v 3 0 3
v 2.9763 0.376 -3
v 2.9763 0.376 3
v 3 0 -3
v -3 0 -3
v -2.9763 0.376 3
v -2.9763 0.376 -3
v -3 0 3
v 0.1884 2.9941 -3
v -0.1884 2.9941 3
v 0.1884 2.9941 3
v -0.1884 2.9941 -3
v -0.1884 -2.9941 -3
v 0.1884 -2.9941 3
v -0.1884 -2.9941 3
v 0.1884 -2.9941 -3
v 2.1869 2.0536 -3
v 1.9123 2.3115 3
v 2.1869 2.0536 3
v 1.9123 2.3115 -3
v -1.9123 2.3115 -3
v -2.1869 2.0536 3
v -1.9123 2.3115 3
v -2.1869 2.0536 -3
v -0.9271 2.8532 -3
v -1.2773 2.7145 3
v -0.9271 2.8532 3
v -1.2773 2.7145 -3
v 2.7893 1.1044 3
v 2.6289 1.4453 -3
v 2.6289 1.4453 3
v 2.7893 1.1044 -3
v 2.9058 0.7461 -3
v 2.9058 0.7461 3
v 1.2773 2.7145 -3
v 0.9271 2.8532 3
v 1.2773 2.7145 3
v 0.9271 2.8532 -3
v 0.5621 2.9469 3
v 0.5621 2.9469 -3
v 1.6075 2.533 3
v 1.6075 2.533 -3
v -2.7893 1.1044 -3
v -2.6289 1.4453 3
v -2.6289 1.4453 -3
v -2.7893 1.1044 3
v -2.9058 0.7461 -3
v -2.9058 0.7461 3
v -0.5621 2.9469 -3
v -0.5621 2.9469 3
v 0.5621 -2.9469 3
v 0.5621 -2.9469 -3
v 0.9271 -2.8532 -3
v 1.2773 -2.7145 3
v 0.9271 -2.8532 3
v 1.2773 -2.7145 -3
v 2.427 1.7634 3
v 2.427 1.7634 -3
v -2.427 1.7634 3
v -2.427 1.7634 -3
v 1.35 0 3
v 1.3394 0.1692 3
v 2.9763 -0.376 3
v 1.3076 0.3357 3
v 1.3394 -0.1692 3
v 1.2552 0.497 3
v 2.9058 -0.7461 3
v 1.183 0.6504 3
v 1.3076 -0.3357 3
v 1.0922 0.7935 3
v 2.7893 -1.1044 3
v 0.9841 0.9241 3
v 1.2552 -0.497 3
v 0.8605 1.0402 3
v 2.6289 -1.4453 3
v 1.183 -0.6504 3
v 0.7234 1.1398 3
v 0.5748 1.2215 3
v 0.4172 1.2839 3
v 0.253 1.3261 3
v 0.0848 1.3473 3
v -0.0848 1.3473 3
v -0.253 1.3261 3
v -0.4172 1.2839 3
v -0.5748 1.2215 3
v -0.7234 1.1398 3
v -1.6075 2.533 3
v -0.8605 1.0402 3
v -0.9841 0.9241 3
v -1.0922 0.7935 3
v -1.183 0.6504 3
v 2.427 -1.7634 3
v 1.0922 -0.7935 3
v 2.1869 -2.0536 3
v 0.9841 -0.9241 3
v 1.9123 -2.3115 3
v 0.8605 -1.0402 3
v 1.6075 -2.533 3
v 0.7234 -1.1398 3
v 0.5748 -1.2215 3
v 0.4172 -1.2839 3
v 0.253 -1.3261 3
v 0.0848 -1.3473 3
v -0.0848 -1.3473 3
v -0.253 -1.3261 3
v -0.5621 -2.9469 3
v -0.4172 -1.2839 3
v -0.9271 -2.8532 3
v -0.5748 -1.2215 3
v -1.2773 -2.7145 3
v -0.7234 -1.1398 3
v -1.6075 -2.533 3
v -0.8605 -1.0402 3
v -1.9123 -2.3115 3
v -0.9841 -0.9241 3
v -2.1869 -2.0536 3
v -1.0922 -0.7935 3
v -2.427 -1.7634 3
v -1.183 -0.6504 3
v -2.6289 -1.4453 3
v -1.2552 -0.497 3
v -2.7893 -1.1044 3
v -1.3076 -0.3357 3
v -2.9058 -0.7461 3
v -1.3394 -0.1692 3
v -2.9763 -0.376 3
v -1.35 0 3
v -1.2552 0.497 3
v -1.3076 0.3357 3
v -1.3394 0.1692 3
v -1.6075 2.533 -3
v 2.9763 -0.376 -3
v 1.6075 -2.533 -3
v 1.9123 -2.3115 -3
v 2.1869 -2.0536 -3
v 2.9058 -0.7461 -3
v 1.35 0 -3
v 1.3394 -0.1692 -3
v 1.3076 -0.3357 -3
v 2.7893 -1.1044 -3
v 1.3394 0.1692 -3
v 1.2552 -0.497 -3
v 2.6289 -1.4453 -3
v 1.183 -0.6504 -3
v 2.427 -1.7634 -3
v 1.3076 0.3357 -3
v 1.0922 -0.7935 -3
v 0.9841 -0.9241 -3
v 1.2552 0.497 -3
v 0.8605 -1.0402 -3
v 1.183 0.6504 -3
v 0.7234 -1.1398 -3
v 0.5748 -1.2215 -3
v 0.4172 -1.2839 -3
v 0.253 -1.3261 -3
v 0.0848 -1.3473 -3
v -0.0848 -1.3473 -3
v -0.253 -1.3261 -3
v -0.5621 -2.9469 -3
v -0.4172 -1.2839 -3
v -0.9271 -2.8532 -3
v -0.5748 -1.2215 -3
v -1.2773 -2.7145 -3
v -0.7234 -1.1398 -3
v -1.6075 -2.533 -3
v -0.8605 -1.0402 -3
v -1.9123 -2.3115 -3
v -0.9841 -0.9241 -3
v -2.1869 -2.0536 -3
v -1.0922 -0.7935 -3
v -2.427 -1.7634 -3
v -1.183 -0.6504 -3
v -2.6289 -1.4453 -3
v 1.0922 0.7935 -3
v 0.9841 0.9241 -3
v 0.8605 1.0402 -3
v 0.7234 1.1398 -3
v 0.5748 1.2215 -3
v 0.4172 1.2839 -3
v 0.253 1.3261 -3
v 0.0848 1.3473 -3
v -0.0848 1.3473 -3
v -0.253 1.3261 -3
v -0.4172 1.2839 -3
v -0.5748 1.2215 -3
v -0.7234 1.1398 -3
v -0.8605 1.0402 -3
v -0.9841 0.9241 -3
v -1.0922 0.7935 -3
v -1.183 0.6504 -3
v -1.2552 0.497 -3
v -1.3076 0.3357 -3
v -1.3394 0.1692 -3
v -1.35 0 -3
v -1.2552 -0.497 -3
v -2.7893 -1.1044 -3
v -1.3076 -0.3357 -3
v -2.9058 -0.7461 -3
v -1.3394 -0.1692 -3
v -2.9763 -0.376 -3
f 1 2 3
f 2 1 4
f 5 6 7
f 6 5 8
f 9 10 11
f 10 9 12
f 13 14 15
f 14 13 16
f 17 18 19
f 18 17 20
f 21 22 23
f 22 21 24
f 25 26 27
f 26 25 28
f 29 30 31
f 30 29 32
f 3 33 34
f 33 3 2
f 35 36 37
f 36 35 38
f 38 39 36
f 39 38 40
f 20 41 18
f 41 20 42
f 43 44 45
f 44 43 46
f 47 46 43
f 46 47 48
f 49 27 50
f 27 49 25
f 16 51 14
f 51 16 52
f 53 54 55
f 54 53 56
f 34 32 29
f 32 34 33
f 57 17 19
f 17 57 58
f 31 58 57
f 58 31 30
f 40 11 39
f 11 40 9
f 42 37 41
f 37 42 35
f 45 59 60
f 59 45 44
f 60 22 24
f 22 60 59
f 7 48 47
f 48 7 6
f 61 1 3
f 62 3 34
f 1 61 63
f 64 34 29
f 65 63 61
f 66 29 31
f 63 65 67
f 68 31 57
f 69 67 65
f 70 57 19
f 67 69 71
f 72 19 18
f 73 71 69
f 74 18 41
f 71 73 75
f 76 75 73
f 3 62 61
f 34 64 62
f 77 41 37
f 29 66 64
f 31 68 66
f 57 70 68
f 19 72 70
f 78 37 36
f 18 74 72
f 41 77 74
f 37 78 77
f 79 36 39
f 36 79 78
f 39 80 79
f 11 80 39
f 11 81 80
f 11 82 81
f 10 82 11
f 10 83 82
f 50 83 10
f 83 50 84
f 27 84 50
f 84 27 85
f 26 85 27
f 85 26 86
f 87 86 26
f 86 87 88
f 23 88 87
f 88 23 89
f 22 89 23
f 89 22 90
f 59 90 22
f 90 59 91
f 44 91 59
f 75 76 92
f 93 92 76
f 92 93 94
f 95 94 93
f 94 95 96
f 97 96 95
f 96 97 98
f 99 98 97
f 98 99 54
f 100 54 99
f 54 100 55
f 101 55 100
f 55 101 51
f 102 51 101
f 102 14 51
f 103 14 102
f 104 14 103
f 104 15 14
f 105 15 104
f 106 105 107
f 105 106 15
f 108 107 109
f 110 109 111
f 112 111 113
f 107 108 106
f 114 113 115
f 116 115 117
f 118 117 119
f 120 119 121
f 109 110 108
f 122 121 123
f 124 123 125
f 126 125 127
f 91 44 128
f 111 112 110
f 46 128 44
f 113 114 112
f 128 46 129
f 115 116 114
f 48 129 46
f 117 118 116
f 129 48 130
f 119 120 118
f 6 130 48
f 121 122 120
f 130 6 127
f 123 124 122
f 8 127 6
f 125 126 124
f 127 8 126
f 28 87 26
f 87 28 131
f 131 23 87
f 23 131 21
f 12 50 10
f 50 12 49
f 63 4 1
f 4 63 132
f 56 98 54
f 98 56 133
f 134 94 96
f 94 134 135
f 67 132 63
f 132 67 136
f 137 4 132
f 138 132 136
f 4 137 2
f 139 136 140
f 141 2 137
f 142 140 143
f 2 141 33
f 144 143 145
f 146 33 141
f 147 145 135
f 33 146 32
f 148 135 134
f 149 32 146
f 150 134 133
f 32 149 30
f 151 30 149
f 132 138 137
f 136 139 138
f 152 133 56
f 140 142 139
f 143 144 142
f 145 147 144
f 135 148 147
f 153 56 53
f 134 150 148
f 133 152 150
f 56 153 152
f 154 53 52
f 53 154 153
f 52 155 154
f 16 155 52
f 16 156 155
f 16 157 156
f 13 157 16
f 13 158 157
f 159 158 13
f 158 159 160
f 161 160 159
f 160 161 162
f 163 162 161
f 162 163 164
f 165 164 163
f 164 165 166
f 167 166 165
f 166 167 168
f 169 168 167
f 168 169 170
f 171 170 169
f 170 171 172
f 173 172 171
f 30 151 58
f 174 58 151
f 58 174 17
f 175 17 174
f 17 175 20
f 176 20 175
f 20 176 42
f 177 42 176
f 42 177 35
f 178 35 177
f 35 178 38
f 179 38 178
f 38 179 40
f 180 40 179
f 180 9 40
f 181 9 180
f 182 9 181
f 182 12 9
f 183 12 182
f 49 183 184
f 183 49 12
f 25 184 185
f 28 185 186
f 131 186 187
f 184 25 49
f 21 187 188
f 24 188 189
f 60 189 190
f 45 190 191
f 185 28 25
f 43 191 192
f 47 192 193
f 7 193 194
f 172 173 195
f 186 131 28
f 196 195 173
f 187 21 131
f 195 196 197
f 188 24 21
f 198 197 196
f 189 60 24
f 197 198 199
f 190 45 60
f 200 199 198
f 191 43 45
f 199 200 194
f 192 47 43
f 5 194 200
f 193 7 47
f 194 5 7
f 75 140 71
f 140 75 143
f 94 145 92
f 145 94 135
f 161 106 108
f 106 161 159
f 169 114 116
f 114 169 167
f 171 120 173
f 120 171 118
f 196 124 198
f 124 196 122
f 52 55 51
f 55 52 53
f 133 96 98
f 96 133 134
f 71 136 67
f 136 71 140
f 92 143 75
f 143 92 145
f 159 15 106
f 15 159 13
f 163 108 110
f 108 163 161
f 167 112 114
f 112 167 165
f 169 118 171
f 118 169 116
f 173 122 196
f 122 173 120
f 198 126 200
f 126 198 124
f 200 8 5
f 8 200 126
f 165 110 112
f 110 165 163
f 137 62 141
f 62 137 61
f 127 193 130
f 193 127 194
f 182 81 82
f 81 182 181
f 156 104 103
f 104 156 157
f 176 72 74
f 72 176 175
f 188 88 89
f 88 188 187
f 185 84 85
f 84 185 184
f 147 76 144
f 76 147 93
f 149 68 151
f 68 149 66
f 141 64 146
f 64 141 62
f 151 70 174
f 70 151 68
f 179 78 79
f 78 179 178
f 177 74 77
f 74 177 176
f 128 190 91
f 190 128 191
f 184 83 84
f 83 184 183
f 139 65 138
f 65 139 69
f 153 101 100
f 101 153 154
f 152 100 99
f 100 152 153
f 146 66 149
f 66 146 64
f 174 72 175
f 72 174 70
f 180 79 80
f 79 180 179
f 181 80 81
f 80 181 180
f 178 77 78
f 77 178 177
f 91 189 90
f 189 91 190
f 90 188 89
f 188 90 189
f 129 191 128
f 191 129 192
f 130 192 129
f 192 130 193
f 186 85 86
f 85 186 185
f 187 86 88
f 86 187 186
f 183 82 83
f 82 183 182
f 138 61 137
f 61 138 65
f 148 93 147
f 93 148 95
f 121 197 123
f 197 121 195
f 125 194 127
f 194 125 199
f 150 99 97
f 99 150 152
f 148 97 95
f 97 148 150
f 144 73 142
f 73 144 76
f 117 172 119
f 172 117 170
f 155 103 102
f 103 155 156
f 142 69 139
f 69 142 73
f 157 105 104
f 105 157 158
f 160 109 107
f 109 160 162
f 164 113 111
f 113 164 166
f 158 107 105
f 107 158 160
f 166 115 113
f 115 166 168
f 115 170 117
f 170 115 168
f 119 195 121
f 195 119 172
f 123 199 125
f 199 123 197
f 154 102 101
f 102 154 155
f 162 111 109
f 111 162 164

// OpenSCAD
$fn = 50;


difference() {
	union() {
		translate(v = [0, 0, -3.0000000000]) {
			cylinder(h = 6, r = 3.0000000000);
		}
	}
	union() {
		translate(v = [0, 0, -100.0000000000]) {
			cylinder(h = 200, r = 1.3500000000);
		}
	}
}
